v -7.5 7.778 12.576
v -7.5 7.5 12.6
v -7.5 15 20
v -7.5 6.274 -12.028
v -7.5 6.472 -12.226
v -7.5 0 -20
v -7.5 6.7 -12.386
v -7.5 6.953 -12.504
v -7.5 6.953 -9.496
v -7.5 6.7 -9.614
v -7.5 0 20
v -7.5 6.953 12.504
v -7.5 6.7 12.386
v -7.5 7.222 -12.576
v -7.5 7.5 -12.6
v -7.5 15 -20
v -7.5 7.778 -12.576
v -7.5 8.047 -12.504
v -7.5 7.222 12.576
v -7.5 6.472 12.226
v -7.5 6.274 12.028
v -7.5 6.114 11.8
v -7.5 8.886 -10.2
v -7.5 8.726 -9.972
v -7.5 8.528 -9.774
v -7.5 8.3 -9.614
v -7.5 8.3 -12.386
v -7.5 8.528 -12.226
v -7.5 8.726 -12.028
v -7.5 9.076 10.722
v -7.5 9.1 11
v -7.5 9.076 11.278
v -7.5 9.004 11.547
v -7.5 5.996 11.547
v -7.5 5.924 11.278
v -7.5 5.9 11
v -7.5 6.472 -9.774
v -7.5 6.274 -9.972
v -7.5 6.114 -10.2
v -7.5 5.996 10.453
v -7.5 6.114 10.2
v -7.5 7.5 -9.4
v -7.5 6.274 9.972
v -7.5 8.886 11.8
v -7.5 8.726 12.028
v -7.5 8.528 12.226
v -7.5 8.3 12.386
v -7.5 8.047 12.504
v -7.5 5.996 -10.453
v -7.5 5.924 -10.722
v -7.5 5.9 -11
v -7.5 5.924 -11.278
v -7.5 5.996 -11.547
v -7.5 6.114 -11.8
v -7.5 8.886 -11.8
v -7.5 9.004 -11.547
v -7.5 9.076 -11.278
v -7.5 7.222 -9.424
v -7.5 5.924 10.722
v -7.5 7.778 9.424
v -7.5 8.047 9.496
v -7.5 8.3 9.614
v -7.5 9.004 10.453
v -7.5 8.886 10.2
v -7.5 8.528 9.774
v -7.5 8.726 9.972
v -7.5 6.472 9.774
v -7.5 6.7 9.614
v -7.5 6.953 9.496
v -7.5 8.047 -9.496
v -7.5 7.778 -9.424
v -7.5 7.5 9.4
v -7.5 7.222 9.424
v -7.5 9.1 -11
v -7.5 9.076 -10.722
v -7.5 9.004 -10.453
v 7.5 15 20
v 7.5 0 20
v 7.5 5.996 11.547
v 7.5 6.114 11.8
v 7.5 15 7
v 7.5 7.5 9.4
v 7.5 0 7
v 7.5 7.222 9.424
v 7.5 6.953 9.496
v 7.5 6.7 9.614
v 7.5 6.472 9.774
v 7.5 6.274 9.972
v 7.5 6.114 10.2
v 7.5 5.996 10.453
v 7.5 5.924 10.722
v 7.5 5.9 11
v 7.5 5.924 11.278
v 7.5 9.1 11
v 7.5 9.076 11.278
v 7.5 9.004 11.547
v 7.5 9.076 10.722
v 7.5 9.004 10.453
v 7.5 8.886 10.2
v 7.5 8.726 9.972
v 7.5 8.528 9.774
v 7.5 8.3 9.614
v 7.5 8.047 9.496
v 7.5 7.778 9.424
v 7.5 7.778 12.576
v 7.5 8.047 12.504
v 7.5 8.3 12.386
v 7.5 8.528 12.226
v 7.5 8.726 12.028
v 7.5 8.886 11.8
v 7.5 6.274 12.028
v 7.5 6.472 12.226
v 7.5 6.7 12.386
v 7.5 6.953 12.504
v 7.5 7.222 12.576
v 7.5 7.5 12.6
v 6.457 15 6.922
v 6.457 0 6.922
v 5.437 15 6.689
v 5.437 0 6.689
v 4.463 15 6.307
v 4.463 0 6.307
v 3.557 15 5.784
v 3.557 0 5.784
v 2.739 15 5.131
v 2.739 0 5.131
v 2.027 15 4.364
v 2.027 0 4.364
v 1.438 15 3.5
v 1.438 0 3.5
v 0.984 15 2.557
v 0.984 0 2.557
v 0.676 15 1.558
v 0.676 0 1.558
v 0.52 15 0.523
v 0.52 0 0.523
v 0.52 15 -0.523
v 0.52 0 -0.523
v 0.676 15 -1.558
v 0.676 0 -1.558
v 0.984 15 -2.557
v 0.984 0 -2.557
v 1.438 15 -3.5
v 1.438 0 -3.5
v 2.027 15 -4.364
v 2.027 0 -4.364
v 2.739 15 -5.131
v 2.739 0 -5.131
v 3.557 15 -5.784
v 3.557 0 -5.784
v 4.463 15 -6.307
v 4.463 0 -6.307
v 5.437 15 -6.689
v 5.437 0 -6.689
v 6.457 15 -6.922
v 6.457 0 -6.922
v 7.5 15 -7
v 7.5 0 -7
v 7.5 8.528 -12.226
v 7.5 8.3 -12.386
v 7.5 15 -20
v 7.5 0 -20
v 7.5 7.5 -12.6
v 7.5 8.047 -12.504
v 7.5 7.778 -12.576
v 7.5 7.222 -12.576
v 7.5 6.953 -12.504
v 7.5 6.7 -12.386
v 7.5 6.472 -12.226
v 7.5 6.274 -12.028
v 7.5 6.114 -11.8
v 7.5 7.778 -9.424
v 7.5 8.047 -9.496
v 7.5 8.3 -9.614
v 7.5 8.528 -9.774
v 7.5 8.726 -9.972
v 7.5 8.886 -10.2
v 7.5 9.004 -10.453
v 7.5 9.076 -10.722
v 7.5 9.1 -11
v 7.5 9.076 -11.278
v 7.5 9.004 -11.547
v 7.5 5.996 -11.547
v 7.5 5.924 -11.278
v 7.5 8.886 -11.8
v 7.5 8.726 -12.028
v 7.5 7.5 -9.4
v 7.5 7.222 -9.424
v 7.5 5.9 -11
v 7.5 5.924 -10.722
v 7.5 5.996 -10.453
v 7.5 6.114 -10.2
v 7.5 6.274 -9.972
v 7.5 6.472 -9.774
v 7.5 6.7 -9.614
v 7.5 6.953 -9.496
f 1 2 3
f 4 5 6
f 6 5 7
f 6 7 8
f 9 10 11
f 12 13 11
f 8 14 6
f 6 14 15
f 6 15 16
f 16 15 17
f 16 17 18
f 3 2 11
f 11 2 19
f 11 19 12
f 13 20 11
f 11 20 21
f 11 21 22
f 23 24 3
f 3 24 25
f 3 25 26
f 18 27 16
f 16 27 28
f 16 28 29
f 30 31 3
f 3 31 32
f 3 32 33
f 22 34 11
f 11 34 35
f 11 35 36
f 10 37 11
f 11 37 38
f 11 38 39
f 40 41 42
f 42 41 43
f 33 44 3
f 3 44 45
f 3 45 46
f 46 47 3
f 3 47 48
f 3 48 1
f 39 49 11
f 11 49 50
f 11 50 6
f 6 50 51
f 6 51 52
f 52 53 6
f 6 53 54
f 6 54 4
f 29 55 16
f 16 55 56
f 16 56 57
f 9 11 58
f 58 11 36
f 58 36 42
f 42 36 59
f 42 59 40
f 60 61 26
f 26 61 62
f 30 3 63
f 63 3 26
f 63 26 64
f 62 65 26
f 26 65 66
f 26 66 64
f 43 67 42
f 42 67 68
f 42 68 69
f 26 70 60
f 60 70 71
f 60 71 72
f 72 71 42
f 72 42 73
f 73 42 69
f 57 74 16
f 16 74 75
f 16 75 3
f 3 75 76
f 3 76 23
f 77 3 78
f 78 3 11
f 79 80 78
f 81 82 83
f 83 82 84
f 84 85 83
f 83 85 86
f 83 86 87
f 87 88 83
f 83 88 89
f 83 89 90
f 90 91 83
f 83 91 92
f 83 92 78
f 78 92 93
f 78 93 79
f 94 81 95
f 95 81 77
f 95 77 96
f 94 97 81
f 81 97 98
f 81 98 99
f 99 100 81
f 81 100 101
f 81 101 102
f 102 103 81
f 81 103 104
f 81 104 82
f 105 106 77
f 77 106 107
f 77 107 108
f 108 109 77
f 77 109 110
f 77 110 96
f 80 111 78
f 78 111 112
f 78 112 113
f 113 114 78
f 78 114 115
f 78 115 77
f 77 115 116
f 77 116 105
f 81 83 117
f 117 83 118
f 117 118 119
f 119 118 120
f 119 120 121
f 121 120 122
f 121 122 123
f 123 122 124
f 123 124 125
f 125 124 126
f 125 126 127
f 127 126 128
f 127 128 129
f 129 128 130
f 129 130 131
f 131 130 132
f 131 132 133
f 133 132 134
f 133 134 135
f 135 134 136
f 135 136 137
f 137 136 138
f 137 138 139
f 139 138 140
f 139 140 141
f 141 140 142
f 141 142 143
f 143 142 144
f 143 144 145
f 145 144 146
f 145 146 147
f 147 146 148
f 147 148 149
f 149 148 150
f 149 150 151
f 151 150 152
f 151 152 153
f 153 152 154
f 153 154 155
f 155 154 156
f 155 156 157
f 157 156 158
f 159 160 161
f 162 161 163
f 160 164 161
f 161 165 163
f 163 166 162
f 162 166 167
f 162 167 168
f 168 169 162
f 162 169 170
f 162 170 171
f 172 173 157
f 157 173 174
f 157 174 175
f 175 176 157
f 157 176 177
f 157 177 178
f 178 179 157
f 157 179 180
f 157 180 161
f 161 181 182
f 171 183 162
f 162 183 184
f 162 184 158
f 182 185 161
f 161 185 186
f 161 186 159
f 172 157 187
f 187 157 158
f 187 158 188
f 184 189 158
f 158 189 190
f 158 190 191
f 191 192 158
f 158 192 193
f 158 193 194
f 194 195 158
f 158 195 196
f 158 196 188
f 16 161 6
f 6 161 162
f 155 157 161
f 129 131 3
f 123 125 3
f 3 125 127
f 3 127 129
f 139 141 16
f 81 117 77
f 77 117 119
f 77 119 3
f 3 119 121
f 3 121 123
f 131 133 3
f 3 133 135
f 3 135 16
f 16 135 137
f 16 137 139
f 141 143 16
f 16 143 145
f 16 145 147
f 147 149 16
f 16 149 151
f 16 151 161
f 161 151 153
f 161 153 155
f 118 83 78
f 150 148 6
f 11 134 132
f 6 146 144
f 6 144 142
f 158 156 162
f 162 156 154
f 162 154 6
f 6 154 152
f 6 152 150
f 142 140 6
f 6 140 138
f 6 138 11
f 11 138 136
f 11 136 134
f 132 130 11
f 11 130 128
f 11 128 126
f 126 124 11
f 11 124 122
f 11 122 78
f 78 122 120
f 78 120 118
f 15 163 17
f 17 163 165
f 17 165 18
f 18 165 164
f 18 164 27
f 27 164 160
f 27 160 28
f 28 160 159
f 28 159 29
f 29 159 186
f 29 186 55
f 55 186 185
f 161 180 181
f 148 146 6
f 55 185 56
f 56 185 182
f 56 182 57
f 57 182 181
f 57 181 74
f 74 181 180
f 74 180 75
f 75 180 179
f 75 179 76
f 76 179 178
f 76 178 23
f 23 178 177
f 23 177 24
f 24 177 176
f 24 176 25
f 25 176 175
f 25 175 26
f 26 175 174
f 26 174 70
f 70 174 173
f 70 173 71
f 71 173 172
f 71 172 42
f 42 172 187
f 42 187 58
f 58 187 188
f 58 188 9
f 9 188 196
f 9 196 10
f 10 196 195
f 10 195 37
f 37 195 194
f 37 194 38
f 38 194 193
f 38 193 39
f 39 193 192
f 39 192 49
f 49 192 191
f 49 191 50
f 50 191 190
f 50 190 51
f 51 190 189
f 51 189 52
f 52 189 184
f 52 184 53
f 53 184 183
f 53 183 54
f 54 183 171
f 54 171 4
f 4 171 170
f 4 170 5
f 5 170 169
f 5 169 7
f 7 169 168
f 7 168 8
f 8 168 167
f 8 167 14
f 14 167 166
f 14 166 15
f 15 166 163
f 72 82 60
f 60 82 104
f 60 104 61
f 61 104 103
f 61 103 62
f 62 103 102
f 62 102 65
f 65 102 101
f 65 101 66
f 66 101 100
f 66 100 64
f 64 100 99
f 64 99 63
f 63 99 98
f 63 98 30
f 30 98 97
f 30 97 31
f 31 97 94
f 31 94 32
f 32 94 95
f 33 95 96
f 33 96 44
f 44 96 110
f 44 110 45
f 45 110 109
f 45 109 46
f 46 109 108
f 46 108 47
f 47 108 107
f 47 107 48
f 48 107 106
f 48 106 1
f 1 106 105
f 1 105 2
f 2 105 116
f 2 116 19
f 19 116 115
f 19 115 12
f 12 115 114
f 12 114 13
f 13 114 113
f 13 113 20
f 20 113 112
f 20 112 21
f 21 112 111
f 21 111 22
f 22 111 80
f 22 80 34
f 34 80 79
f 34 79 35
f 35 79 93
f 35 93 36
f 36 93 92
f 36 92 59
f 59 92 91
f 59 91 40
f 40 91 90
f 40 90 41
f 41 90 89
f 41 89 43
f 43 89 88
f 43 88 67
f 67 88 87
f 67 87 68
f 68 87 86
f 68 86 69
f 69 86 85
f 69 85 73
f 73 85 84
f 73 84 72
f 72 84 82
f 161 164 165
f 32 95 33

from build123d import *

# Parameters (mm, degrees)
BOSS_EXTRUDE1_DEPTH = 15
CUT_EXTRUDE2_REACH  = 17
SKETCH4_R           = 1.6


with BuildPart() as part:
    # Sketch1 → Boss-Extrude1 (new body)
    with BuildSketch(Plane(origin=(0, 0, 0), x_dir=(1, 0, 0), z_dir=(0, 1, 0))):
        with BuildLine():
            Line((7.5, 20), (7.5, 7))
            ThreePointArc((7.5, 7), (0.5, 0), (7.5, -7))
            Line((7.5, -7), (7.5, -20))
            Line((7.5, -20), (-7.5, -20))
            Line((-7.5, -20), (-7.5, 20))
            Line((-7.5, 20), (7.5, 20))
        make_face()
    extrude(amount=BOSS_EXTRUDE1_DEPTH)

    # Sketch4 → Cut-Extrude2 (cut, up to next)
    with BuildSketch(Plane(origin=(7.5, 0, 0), x_dir=(0, 0, -1), z_dir=(1, 0, 0)), mode=Mode.PRIVATE) as cut_extrude2_sk1:
        with Locations((11, 7.5)):
            Circle(SKETCH4_R)
    cut_extrude2_tool1 = extrude(cut_extrude2_sk1.sketch, amount=-CUT_EXTRUDE2_REACH, mode=Mode.PRIVATE) & part.part
    add(cut_extrude2_tool1.solids().sort_by_distance((7.5, 7.5, -11))[0], mode=Mode.SUBTRACT)
    # Sketch4 → Cut-Extrude2 (cut, up to next)
    with BuildSketch(Plane(origin=(7.5, 0, 0), x_dir=(0, 0, -1), z_dir=(1, 0, 0)), mode=Mode.PRIVATE) as cut_extrude2_sk2:
        with Locations((-11, 7.5)):
            Circle(SKETCH4_R)
    cut_extrude2_tool2 = extrude(cut_extrude2_sk2.sketch, amount=-CUT_EXTRUDE2_REACH, mode=Mode.PRIVATE) & part.part
    add(cut_extrude2_tool2.solids().sort_by_distance((7.5, 7.5, 11))[0], mode=Mode.SUBTRACT)


solid = part.part
